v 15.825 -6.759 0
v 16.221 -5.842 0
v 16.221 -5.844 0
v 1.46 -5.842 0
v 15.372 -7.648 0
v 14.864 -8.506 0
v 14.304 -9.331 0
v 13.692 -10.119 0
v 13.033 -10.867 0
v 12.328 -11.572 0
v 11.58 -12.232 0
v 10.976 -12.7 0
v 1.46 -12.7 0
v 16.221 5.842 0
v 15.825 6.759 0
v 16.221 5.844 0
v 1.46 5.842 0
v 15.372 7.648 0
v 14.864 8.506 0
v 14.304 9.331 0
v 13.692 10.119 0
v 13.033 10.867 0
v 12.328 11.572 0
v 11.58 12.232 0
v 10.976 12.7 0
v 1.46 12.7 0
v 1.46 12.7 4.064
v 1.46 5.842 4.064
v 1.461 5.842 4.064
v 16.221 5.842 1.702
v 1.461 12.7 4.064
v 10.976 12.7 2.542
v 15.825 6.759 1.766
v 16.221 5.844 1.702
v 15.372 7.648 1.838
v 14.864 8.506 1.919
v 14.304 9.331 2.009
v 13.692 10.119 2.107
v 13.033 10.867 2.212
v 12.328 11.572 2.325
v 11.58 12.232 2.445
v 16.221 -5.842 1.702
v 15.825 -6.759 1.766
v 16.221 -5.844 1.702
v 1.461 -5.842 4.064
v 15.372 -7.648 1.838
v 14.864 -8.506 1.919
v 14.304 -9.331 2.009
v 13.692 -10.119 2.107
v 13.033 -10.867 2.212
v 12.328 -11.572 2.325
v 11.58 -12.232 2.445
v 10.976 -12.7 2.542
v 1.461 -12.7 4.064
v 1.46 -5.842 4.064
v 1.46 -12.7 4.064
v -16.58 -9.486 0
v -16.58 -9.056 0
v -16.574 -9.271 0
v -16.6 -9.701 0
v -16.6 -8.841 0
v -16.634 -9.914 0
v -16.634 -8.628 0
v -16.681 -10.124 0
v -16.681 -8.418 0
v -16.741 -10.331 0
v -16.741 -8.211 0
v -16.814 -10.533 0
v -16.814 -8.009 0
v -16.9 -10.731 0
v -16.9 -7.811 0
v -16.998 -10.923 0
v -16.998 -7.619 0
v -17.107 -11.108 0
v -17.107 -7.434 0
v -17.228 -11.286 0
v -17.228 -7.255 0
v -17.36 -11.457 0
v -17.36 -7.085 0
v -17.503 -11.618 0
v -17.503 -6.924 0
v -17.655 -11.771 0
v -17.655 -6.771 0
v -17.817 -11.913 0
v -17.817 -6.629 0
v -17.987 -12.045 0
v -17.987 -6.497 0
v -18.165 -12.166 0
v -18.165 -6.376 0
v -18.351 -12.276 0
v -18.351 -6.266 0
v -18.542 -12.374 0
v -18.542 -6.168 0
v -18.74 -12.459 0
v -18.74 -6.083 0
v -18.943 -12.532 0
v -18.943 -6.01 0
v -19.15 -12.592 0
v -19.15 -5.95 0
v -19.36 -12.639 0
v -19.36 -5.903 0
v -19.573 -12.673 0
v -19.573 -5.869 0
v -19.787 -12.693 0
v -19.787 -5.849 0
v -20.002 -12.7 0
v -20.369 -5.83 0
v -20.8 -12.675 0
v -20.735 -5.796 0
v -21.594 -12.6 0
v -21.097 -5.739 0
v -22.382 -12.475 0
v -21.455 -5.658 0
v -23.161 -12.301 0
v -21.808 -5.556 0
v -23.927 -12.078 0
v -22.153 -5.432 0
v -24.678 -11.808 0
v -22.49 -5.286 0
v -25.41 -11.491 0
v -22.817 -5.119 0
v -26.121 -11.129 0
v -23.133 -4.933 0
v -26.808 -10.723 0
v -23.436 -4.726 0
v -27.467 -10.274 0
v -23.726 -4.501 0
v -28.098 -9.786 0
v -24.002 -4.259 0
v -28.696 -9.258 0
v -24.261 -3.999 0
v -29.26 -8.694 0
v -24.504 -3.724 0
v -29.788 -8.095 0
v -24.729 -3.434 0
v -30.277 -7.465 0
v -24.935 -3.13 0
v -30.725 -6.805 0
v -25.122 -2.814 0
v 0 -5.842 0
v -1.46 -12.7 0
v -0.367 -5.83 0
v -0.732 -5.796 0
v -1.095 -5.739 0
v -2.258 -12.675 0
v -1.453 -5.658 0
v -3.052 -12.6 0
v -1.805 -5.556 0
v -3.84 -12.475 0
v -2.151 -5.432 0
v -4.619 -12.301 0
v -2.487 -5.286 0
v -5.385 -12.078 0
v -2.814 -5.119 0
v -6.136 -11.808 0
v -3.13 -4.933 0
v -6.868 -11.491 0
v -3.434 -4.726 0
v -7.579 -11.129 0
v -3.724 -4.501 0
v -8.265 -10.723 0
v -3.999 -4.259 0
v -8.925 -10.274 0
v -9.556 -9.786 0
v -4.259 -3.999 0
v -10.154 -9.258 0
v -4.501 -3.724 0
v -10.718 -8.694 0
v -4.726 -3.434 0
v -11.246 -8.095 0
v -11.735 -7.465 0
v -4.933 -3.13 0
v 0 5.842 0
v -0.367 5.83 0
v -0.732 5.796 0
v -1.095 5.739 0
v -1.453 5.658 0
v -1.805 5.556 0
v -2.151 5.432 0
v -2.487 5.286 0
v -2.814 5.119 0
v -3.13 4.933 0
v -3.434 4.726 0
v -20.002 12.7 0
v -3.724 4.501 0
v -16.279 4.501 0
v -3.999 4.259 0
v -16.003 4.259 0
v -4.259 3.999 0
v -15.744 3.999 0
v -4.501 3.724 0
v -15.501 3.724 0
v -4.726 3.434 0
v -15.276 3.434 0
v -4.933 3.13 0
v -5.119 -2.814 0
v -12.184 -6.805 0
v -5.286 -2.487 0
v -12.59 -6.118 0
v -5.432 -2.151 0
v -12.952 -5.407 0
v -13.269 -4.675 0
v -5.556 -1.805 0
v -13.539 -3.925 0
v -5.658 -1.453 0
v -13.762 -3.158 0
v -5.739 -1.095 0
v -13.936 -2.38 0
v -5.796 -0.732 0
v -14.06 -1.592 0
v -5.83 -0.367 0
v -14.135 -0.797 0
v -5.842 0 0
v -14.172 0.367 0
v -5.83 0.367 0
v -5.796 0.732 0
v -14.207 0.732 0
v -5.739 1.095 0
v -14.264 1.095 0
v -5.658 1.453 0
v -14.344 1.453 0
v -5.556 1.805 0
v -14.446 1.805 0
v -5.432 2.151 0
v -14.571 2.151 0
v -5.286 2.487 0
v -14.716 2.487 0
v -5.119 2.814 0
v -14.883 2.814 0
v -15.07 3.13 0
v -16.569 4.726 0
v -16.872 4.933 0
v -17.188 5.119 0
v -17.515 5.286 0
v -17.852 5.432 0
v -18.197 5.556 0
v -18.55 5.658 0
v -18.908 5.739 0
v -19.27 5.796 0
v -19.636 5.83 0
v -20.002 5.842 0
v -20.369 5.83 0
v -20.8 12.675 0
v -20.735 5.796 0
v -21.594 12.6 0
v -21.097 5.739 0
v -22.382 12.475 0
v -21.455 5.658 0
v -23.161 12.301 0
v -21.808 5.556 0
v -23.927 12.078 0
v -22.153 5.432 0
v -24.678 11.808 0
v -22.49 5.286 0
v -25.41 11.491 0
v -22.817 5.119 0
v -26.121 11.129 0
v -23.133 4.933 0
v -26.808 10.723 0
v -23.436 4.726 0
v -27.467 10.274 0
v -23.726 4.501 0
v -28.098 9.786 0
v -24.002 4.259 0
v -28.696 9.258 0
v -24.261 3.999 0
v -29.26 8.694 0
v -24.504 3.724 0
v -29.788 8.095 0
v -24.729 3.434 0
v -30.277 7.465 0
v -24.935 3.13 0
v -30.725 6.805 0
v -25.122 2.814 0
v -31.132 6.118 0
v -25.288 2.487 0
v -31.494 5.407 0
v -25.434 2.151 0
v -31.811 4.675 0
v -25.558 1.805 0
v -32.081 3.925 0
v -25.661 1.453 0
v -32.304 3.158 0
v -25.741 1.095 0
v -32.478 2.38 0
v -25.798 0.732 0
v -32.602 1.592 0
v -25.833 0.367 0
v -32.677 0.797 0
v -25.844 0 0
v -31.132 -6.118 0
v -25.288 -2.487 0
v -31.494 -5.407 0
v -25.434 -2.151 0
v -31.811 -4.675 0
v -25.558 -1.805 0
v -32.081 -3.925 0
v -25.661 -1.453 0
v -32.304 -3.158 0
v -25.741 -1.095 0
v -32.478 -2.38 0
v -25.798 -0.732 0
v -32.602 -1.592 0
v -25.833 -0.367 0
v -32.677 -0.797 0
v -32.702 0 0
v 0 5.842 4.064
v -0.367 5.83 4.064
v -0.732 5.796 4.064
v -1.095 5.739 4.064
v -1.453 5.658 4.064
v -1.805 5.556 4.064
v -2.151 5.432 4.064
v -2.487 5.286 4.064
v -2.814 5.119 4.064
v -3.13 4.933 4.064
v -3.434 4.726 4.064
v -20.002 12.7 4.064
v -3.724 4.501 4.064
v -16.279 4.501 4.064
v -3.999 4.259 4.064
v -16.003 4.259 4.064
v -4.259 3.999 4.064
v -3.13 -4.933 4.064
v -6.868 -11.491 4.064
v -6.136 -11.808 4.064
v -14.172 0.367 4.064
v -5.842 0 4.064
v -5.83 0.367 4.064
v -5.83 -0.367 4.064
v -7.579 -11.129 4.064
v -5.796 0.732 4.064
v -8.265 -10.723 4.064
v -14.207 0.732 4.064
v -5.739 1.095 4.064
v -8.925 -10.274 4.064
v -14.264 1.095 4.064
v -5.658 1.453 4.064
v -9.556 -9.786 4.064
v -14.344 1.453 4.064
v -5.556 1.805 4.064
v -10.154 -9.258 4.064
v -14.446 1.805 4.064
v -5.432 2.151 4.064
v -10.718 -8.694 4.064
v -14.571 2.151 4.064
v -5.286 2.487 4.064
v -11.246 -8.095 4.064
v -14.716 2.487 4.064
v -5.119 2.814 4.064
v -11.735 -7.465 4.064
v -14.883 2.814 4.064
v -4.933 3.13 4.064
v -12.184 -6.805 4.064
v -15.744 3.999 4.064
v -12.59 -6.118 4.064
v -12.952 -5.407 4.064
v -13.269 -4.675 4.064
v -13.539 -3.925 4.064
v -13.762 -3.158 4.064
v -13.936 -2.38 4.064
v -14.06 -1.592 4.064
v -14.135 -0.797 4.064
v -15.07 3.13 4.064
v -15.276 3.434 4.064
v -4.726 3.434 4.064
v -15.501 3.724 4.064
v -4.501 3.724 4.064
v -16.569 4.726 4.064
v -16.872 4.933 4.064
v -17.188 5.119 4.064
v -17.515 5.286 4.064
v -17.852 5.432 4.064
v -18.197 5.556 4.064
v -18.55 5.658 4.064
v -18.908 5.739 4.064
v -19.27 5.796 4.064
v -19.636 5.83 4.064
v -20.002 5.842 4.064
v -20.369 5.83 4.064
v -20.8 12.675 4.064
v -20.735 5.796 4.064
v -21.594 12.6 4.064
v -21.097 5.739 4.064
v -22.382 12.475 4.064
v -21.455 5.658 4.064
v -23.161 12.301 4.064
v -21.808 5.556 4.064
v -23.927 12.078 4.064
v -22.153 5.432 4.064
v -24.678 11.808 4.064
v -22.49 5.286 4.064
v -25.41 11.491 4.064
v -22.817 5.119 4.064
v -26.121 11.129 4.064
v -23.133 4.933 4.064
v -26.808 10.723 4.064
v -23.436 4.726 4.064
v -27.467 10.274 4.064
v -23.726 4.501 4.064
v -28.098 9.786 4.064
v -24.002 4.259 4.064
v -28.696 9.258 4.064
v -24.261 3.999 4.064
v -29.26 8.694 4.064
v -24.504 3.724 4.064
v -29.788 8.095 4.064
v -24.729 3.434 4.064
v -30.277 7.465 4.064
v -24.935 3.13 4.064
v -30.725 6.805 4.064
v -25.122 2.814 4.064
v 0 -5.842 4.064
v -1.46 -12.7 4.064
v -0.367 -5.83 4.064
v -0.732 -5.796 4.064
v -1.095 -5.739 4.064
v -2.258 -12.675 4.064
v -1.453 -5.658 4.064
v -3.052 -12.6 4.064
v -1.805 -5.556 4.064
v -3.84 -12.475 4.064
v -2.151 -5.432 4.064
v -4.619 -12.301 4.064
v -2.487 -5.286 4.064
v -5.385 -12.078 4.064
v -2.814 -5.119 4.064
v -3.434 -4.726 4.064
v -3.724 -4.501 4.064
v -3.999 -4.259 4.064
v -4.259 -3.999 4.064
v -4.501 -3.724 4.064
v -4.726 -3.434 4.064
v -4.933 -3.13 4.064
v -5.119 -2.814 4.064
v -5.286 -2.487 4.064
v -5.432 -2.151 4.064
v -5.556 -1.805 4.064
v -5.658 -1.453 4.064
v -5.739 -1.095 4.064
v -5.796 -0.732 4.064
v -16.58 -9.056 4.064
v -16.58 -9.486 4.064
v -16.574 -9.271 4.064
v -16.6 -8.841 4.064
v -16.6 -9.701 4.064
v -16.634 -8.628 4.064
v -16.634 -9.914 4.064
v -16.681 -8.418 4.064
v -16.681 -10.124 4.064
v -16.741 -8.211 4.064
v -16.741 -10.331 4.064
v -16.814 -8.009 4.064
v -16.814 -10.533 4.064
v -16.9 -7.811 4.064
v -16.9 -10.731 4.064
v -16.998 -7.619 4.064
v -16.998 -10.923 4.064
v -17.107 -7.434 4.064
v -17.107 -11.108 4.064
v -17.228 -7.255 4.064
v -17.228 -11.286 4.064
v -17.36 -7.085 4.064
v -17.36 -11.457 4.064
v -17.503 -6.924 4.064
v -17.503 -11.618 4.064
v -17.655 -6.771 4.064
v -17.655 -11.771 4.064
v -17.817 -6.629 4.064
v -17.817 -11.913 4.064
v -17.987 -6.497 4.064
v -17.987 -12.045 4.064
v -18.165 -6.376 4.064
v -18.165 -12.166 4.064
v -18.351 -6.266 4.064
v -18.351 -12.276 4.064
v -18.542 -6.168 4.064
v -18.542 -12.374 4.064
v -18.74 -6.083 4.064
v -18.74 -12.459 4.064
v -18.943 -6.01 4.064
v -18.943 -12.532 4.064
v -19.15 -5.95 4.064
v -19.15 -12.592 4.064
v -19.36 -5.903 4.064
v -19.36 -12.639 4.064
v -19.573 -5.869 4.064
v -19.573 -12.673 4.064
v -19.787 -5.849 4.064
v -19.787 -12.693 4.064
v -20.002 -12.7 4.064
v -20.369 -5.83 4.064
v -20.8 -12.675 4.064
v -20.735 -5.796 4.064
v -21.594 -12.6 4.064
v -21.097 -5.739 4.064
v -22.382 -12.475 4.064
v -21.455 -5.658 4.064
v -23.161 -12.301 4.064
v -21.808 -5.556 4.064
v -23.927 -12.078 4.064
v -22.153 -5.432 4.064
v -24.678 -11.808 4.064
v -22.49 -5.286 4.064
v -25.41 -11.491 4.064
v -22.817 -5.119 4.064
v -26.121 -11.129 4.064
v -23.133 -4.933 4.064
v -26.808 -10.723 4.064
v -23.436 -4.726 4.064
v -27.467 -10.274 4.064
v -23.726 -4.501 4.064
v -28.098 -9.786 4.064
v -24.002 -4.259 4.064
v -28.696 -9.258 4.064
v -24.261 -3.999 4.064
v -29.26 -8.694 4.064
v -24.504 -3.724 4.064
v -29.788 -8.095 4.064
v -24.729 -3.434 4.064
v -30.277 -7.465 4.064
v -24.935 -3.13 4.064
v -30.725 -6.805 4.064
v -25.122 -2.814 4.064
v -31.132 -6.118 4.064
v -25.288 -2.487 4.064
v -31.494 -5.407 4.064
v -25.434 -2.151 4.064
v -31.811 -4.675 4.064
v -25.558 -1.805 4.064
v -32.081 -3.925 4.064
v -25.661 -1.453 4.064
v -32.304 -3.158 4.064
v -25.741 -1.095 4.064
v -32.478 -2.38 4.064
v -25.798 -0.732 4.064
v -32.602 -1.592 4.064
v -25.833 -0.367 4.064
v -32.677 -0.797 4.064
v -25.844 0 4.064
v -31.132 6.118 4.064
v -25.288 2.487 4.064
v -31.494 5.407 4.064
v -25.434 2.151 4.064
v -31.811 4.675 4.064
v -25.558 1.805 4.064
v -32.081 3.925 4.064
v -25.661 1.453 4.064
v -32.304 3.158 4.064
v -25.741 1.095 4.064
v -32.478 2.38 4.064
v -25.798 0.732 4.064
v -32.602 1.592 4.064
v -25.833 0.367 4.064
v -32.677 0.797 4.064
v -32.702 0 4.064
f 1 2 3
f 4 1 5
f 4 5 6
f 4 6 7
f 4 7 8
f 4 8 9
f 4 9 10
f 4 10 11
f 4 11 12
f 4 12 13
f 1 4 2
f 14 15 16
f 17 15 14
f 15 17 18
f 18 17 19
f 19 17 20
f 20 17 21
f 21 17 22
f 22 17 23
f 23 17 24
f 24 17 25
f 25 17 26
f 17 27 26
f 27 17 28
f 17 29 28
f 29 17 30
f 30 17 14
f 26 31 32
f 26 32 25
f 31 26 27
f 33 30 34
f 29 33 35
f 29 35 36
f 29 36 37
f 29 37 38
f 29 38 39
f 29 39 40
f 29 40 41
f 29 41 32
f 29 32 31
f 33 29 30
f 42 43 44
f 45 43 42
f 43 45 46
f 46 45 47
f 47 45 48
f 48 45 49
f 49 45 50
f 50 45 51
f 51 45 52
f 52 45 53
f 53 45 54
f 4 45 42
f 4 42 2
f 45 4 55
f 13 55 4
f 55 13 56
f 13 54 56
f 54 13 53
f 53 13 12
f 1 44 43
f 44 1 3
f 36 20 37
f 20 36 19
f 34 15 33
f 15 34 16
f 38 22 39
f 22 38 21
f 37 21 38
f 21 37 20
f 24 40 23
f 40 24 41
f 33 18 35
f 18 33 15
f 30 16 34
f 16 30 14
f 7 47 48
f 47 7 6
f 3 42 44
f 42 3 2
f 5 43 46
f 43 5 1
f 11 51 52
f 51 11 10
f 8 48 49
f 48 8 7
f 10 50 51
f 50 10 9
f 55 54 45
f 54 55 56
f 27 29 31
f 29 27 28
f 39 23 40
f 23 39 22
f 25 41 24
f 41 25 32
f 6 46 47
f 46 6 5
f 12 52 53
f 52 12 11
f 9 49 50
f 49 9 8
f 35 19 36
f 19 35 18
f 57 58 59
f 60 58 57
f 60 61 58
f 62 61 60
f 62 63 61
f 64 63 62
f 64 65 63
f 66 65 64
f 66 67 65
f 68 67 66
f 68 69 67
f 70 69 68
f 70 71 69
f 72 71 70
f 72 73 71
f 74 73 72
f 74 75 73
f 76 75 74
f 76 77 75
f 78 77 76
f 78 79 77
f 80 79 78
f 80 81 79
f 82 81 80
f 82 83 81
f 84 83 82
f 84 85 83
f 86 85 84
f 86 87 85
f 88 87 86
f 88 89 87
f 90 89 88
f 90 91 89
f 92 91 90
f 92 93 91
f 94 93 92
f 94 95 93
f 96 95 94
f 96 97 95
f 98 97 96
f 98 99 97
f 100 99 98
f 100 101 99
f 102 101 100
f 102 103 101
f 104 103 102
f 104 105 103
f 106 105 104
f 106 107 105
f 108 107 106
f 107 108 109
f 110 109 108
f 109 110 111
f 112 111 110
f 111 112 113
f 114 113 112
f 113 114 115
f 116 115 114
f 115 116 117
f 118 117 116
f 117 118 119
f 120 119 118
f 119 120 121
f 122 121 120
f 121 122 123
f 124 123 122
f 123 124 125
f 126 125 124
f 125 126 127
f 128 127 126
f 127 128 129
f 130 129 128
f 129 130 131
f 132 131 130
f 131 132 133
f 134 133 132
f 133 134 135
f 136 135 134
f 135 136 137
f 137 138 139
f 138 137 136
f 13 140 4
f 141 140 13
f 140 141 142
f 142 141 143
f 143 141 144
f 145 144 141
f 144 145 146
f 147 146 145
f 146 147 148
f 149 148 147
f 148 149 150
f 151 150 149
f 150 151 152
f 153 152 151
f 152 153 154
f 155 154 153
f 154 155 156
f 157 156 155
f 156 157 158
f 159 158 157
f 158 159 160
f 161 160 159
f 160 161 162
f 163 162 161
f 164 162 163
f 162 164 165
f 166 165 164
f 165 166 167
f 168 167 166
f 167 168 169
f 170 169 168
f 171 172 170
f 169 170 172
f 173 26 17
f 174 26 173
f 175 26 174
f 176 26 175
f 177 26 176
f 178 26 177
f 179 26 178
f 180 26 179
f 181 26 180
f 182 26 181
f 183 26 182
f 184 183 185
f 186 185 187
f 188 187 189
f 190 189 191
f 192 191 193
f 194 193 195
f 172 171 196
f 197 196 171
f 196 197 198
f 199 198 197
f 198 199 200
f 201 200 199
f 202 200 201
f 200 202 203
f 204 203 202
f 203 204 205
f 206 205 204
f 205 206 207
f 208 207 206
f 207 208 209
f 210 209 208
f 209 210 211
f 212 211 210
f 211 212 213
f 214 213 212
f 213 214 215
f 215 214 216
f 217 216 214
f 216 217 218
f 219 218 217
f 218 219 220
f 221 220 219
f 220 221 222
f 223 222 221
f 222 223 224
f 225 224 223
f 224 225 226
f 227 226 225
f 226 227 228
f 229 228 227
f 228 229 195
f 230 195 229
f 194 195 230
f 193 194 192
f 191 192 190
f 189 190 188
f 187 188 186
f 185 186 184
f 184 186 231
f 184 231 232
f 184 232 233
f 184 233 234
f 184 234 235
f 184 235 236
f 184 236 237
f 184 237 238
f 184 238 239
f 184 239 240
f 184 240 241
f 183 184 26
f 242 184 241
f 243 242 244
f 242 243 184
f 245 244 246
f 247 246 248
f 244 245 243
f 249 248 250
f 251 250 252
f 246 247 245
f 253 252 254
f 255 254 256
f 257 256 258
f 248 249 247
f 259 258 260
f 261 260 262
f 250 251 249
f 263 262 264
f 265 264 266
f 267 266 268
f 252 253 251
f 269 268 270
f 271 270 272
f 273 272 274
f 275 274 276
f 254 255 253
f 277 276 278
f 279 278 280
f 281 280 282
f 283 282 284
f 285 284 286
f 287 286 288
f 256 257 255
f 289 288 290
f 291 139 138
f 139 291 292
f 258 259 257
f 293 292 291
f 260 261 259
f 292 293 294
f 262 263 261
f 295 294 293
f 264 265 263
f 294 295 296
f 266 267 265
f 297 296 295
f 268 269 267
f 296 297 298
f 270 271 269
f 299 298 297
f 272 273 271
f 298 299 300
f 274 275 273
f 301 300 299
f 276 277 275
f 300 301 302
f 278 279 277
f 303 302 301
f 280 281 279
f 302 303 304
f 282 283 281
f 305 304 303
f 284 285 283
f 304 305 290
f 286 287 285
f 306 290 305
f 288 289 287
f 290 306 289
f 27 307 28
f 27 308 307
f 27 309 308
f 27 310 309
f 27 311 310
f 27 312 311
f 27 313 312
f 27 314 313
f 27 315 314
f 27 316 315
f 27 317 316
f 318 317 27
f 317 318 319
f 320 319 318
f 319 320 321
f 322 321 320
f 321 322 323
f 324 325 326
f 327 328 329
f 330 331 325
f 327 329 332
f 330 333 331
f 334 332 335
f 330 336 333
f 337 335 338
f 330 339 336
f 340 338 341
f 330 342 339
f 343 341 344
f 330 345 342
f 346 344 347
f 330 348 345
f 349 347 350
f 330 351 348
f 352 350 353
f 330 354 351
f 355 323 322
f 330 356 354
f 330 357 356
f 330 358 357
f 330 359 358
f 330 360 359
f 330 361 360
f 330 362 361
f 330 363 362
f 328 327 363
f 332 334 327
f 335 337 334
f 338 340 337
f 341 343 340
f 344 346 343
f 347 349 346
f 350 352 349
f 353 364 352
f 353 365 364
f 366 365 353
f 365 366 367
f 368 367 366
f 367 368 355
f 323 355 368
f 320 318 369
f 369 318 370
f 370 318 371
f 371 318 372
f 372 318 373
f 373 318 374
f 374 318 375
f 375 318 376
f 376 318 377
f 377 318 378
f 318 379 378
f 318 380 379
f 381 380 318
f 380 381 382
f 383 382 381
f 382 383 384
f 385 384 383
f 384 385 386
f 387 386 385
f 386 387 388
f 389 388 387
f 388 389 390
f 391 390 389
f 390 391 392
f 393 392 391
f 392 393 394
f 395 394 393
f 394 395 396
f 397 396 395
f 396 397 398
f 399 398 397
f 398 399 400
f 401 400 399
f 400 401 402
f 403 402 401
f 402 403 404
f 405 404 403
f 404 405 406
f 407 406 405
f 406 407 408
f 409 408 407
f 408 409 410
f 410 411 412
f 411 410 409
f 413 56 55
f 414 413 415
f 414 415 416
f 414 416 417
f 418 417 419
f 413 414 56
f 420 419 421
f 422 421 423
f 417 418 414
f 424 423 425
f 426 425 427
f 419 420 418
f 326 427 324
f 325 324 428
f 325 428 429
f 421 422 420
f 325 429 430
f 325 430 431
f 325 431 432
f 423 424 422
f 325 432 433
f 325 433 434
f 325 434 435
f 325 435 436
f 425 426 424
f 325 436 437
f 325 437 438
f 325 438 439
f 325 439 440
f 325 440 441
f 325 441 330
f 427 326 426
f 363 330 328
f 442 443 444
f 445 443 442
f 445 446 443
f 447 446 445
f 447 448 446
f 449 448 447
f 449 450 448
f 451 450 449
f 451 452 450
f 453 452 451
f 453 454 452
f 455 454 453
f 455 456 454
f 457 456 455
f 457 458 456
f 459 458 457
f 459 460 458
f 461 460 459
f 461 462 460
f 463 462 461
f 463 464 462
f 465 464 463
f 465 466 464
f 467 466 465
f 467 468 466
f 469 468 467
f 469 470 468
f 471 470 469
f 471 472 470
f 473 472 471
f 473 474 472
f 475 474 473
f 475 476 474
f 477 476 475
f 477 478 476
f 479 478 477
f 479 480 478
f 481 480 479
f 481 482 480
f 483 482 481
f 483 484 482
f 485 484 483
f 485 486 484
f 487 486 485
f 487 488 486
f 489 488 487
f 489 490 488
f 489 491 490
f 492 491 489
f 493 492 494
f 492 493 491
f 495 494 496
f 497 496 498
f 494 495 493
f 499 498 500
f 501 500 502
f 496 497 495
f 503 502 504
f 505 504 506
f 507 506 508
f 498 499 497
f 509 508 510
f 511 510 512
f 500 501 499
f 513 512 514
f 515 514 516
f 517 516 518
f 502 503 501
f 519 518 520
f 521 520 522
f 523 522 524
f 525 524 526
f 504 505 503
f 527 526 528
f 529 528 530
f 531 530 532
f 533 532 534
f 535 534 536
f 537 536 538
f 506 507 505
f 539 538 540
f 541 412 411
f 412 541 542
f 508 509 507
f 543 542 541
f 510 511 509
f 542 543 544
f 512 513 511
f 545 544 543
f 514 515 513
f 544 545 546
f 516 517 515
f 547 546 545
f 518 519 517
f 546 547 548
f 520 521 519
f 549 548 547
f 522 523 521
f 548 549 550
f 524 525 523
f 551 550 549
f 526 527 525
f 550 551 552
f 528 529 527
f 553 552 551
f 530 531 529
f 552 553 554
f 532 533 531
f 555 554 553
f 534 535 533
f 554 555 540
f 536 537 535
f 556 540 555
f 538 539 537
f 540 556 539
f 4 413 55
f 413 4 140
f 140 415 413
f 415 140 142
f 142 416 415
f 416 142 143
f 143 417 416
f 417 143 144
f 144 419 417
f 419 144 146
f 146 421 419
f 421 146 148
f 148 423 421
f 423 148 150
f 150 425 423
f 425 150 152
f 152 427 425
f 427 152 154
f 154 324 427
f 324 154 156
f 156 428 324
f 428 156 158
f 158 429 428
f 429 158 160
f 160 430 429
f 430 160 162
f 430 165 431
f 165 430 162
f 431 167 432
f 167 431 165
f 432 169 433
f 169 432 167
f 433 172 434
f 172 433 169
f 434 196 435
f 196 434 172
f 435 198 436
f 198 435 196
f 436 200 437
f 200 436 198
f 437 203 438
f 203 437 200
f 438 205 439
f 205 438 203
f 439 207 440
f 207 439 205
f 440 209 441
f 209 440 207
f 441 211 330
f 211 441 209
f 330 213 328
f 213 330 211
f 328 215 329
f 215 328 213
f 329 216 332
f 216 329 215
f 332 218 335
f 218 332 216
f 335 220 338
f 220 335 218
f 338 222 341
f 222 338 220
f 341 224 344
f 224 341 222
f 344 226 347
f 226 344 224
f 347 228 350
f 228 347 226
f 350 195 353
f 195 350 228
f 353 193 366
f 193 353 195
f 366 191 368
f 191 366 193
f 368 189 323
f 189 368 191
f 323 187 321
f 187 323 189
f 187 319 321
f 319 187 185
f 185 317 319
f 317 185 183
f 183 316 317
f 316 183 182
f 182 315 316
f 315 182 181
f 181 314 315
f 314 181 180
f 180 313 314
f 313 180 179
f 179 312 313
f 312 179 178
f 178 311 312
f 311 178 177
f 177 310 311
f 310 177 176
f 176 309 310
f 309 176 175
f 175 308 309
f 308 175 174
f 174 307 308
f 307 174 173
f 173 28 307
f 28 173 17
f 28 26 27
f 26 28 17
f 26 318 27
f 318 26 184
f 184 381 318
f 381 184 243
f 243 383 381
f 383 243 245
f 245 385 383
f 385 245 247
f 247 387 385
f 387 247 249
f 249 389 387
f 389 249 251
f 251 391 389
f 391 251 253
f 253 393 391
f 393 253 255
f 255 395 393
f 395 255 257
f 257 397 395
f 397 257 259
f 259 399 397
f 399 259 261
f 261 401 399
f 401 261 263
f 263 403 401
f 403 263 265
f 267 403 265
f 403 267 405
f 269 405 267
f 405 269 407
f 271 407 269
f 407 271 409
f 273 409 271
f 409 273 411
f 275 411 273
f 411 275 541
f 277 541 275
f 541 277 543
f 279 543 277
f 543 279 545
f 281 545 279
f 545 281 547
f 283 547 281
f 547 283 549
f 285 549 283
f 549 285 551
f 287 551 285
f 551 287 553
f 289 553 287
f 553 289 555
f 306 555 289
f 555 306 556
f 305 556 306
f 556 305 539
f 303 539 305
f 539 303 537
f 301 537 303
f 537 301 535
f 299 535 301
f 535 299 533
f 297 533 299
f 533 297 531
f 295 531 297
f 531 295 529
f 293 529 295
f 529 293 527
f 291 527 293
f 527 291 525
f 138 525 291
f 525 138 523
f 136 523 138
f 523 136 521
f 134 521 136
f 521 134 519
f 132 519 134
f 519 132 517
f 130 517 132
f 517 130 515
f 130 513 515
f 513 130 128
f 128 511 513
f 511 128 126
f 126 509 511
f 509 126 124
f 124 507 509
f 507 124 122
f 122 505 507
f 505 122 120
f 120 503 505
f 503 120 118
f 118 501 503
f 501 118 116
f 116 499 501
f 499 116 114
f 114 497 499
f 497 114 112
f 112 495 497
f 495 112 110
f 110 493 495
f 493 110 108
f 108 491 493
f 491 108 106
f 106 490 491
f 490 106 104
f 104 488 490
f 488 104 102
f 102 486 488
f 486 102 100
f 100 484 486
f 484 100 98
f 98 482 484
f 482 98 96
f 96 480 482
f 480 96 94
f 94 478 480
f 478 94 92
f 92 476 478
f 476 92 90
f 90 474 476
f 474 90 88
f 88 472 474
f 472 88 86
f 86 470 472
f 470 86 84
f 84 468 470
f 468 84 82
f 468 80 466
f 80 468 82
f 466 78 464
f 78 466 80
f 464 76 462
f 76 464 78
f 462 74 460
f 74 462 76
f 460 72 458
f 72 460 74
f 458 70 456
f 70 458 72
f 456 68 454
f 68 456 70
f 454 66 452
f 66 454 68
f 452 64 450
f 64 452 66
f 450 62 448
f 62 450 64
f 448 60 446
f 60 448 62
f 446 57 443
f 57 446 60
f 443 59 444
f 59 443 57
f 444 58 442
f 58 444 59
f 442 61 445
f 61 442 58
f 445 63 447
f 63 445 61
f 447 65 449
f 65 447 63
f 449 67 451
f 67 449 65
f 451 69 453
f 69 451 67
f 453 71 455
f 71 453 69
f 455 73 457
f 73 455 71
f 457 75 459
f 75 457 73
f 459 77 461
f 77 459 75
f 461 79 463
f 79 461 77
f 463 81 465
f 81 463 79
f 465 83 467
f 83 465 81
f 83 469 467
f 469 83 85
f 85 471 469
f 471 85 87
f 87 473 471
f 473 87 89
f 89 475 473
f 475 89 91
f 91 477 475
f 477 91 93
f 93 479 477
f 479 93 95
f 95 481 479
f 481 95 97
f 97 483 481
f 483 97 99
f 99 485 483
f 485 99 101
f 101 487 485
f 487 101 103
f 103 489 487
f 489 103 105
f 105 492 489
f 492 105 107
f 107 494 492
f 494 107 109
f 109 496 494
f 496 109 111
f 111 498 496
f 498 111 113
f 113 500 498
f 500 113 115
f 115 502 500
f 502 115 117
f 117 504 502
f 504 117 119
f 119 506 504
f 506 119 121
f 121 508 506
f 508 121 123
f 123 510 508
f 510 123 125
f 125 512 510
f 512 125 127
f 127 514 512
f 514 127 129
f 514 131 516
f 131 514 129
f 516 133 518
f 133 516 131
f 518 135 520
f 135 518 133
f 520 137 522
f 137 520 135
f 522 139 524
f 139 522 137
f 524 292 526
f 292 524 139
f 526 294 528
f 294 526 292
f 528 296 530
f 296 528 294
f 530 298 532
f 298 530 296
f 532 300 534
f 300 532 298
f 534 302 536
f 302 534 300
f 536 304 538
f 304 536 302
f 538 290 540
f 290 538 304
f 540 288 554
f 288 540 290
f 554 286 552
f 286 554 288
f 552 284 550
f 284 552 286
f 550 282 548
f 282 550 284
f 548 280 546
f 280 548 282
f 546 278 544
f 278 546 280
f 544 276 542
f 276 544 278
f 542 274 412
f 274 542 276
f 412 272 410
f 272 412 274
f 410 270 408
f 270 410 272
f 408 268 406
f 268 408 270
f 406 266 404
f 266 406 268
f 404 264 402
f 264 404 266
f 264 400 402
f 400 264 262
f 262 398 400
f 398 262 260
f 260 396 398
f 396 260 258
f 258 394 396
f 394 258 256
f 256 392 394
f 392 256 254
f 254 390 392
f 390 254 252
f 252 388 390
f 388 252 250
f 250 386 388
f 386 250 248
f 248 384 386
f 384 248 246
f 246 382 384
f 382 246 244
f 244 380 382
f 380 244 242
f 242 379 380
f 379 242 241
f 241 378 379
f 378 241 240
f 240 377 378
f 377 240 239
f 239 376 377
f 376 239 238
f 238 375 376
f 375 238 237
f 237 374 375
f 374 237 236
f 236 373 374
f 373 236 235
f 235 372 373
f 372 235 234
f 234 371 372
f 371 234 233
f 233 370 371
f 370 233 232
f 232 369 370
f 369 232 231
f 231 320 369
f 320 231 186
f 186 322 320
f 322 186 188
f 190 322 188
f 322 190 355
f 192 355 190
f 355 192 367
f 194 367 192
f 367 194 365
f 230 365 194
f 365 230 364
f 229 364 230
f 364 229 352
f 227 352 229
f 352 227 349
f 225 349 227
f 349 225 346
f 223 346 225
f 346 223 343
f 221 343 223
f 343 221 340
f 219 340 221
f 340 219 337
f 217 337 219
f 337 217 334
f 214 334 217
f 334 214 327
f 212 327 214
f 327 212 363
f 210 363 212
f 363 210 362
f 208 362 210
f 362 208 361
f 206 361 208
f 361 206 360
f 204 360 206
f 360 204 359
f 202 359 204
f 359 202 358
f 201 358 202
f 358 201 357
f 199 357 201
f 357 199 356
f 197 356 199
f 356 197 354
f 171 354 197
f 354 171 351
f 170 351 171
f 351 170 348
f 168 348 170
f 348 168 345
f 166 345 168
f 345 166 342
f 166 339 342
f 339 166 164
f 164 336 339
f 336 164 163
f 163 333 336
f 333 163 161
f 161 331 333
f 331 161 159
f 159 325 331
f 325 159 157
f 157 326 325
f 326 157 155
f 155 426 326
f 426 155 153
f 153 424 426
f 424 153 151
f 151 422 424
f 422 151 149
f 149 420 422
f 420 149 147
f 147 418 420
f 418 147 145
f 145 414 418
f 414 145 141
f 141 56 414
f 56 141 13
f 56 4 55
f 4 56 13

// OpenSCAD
/*
 Tool to open Beth's mecine bottle
 
 Makes heavy use of linear extrude instead of cube/cylinder.  Deal with it.
*/
include <MCAD/units.scad>
use <MCAD/libtriangles.scad>

neck_diameter = 0.46*inch;
height = (0.11 + .05)*inch;
base = 1*inch;

module lever(neck, w, h){
    //box_length = 0.125*inch;
    box_length = neck/4; // this seems to work well
    union(){
        translate([box_length/2,0,0]){
            _wedge(neck, w, h);
        }
        linear_extrude(h){
          difference(){
            union(){
              _center_box(box_length, w);
              translate([-1*box_length/2,0,0]){
                  //_hook(w, h*1.5);
                  _hook(w, (w-neck)/2);
              }
            }
            _box_hole(box_length, neck, h);
          }
        }
    }
}

module _wedge(neck, w, h){
    intersection(){
        // round the tips off
        // 1.25 just looked pleasing to me
        linear_extrude(h)
            circle(d=1.25*w);
        union(){
            _real_wedge(neck,w,h);
            mirror(Y)
              _real_wedge(neck,w,h);
        }
    }
}

module _real_wedge(n,w,h){
    // w is overall width, but also length of wedges
    ww = (w-n)/2;
    translate([0, n/2, 0])
        rightprism(w,ww,h);
}

module _center_box(l, w){
  square(size=[l,w], center=true);
}

module _box_hole(box_length, diameter, h){
  hl=box_length/2; // half_length
  d=diameter;
  union(){
    circle(d=d);
    translate([hl/2,0,0])
        square(size=[hl,d], center=true);
  }
}

module _hook(w, thickness){
    t=thickness;
    union(){
        // curved base
        intersection(){
            circle(d=w);
            translate([-1*w/2,0,0])
                square(size=[w,w], center=true);
        }
        // hook top
        translate([-1*(w-t),0,0]){
            // vertical filler below hook
            difference(){
                square(size=[w-t,w/2], center=false);
                circle(r=(w/2)-t);
            }
            // top of hook
            difference(){
                intersection(){
                    circle(d=w);
                    translate([-1*w/2,0,0])
                        square(size=[w,w], center=true);
                }
                circle(r=(w/2)-t);
            }
            // curve at end of hook
            translate([0,-1*((w/2)-(t/2)),0])
                circle(d=t);
        }
    }
}

lever(neck_diameter, base, height,
      $fn=100);
